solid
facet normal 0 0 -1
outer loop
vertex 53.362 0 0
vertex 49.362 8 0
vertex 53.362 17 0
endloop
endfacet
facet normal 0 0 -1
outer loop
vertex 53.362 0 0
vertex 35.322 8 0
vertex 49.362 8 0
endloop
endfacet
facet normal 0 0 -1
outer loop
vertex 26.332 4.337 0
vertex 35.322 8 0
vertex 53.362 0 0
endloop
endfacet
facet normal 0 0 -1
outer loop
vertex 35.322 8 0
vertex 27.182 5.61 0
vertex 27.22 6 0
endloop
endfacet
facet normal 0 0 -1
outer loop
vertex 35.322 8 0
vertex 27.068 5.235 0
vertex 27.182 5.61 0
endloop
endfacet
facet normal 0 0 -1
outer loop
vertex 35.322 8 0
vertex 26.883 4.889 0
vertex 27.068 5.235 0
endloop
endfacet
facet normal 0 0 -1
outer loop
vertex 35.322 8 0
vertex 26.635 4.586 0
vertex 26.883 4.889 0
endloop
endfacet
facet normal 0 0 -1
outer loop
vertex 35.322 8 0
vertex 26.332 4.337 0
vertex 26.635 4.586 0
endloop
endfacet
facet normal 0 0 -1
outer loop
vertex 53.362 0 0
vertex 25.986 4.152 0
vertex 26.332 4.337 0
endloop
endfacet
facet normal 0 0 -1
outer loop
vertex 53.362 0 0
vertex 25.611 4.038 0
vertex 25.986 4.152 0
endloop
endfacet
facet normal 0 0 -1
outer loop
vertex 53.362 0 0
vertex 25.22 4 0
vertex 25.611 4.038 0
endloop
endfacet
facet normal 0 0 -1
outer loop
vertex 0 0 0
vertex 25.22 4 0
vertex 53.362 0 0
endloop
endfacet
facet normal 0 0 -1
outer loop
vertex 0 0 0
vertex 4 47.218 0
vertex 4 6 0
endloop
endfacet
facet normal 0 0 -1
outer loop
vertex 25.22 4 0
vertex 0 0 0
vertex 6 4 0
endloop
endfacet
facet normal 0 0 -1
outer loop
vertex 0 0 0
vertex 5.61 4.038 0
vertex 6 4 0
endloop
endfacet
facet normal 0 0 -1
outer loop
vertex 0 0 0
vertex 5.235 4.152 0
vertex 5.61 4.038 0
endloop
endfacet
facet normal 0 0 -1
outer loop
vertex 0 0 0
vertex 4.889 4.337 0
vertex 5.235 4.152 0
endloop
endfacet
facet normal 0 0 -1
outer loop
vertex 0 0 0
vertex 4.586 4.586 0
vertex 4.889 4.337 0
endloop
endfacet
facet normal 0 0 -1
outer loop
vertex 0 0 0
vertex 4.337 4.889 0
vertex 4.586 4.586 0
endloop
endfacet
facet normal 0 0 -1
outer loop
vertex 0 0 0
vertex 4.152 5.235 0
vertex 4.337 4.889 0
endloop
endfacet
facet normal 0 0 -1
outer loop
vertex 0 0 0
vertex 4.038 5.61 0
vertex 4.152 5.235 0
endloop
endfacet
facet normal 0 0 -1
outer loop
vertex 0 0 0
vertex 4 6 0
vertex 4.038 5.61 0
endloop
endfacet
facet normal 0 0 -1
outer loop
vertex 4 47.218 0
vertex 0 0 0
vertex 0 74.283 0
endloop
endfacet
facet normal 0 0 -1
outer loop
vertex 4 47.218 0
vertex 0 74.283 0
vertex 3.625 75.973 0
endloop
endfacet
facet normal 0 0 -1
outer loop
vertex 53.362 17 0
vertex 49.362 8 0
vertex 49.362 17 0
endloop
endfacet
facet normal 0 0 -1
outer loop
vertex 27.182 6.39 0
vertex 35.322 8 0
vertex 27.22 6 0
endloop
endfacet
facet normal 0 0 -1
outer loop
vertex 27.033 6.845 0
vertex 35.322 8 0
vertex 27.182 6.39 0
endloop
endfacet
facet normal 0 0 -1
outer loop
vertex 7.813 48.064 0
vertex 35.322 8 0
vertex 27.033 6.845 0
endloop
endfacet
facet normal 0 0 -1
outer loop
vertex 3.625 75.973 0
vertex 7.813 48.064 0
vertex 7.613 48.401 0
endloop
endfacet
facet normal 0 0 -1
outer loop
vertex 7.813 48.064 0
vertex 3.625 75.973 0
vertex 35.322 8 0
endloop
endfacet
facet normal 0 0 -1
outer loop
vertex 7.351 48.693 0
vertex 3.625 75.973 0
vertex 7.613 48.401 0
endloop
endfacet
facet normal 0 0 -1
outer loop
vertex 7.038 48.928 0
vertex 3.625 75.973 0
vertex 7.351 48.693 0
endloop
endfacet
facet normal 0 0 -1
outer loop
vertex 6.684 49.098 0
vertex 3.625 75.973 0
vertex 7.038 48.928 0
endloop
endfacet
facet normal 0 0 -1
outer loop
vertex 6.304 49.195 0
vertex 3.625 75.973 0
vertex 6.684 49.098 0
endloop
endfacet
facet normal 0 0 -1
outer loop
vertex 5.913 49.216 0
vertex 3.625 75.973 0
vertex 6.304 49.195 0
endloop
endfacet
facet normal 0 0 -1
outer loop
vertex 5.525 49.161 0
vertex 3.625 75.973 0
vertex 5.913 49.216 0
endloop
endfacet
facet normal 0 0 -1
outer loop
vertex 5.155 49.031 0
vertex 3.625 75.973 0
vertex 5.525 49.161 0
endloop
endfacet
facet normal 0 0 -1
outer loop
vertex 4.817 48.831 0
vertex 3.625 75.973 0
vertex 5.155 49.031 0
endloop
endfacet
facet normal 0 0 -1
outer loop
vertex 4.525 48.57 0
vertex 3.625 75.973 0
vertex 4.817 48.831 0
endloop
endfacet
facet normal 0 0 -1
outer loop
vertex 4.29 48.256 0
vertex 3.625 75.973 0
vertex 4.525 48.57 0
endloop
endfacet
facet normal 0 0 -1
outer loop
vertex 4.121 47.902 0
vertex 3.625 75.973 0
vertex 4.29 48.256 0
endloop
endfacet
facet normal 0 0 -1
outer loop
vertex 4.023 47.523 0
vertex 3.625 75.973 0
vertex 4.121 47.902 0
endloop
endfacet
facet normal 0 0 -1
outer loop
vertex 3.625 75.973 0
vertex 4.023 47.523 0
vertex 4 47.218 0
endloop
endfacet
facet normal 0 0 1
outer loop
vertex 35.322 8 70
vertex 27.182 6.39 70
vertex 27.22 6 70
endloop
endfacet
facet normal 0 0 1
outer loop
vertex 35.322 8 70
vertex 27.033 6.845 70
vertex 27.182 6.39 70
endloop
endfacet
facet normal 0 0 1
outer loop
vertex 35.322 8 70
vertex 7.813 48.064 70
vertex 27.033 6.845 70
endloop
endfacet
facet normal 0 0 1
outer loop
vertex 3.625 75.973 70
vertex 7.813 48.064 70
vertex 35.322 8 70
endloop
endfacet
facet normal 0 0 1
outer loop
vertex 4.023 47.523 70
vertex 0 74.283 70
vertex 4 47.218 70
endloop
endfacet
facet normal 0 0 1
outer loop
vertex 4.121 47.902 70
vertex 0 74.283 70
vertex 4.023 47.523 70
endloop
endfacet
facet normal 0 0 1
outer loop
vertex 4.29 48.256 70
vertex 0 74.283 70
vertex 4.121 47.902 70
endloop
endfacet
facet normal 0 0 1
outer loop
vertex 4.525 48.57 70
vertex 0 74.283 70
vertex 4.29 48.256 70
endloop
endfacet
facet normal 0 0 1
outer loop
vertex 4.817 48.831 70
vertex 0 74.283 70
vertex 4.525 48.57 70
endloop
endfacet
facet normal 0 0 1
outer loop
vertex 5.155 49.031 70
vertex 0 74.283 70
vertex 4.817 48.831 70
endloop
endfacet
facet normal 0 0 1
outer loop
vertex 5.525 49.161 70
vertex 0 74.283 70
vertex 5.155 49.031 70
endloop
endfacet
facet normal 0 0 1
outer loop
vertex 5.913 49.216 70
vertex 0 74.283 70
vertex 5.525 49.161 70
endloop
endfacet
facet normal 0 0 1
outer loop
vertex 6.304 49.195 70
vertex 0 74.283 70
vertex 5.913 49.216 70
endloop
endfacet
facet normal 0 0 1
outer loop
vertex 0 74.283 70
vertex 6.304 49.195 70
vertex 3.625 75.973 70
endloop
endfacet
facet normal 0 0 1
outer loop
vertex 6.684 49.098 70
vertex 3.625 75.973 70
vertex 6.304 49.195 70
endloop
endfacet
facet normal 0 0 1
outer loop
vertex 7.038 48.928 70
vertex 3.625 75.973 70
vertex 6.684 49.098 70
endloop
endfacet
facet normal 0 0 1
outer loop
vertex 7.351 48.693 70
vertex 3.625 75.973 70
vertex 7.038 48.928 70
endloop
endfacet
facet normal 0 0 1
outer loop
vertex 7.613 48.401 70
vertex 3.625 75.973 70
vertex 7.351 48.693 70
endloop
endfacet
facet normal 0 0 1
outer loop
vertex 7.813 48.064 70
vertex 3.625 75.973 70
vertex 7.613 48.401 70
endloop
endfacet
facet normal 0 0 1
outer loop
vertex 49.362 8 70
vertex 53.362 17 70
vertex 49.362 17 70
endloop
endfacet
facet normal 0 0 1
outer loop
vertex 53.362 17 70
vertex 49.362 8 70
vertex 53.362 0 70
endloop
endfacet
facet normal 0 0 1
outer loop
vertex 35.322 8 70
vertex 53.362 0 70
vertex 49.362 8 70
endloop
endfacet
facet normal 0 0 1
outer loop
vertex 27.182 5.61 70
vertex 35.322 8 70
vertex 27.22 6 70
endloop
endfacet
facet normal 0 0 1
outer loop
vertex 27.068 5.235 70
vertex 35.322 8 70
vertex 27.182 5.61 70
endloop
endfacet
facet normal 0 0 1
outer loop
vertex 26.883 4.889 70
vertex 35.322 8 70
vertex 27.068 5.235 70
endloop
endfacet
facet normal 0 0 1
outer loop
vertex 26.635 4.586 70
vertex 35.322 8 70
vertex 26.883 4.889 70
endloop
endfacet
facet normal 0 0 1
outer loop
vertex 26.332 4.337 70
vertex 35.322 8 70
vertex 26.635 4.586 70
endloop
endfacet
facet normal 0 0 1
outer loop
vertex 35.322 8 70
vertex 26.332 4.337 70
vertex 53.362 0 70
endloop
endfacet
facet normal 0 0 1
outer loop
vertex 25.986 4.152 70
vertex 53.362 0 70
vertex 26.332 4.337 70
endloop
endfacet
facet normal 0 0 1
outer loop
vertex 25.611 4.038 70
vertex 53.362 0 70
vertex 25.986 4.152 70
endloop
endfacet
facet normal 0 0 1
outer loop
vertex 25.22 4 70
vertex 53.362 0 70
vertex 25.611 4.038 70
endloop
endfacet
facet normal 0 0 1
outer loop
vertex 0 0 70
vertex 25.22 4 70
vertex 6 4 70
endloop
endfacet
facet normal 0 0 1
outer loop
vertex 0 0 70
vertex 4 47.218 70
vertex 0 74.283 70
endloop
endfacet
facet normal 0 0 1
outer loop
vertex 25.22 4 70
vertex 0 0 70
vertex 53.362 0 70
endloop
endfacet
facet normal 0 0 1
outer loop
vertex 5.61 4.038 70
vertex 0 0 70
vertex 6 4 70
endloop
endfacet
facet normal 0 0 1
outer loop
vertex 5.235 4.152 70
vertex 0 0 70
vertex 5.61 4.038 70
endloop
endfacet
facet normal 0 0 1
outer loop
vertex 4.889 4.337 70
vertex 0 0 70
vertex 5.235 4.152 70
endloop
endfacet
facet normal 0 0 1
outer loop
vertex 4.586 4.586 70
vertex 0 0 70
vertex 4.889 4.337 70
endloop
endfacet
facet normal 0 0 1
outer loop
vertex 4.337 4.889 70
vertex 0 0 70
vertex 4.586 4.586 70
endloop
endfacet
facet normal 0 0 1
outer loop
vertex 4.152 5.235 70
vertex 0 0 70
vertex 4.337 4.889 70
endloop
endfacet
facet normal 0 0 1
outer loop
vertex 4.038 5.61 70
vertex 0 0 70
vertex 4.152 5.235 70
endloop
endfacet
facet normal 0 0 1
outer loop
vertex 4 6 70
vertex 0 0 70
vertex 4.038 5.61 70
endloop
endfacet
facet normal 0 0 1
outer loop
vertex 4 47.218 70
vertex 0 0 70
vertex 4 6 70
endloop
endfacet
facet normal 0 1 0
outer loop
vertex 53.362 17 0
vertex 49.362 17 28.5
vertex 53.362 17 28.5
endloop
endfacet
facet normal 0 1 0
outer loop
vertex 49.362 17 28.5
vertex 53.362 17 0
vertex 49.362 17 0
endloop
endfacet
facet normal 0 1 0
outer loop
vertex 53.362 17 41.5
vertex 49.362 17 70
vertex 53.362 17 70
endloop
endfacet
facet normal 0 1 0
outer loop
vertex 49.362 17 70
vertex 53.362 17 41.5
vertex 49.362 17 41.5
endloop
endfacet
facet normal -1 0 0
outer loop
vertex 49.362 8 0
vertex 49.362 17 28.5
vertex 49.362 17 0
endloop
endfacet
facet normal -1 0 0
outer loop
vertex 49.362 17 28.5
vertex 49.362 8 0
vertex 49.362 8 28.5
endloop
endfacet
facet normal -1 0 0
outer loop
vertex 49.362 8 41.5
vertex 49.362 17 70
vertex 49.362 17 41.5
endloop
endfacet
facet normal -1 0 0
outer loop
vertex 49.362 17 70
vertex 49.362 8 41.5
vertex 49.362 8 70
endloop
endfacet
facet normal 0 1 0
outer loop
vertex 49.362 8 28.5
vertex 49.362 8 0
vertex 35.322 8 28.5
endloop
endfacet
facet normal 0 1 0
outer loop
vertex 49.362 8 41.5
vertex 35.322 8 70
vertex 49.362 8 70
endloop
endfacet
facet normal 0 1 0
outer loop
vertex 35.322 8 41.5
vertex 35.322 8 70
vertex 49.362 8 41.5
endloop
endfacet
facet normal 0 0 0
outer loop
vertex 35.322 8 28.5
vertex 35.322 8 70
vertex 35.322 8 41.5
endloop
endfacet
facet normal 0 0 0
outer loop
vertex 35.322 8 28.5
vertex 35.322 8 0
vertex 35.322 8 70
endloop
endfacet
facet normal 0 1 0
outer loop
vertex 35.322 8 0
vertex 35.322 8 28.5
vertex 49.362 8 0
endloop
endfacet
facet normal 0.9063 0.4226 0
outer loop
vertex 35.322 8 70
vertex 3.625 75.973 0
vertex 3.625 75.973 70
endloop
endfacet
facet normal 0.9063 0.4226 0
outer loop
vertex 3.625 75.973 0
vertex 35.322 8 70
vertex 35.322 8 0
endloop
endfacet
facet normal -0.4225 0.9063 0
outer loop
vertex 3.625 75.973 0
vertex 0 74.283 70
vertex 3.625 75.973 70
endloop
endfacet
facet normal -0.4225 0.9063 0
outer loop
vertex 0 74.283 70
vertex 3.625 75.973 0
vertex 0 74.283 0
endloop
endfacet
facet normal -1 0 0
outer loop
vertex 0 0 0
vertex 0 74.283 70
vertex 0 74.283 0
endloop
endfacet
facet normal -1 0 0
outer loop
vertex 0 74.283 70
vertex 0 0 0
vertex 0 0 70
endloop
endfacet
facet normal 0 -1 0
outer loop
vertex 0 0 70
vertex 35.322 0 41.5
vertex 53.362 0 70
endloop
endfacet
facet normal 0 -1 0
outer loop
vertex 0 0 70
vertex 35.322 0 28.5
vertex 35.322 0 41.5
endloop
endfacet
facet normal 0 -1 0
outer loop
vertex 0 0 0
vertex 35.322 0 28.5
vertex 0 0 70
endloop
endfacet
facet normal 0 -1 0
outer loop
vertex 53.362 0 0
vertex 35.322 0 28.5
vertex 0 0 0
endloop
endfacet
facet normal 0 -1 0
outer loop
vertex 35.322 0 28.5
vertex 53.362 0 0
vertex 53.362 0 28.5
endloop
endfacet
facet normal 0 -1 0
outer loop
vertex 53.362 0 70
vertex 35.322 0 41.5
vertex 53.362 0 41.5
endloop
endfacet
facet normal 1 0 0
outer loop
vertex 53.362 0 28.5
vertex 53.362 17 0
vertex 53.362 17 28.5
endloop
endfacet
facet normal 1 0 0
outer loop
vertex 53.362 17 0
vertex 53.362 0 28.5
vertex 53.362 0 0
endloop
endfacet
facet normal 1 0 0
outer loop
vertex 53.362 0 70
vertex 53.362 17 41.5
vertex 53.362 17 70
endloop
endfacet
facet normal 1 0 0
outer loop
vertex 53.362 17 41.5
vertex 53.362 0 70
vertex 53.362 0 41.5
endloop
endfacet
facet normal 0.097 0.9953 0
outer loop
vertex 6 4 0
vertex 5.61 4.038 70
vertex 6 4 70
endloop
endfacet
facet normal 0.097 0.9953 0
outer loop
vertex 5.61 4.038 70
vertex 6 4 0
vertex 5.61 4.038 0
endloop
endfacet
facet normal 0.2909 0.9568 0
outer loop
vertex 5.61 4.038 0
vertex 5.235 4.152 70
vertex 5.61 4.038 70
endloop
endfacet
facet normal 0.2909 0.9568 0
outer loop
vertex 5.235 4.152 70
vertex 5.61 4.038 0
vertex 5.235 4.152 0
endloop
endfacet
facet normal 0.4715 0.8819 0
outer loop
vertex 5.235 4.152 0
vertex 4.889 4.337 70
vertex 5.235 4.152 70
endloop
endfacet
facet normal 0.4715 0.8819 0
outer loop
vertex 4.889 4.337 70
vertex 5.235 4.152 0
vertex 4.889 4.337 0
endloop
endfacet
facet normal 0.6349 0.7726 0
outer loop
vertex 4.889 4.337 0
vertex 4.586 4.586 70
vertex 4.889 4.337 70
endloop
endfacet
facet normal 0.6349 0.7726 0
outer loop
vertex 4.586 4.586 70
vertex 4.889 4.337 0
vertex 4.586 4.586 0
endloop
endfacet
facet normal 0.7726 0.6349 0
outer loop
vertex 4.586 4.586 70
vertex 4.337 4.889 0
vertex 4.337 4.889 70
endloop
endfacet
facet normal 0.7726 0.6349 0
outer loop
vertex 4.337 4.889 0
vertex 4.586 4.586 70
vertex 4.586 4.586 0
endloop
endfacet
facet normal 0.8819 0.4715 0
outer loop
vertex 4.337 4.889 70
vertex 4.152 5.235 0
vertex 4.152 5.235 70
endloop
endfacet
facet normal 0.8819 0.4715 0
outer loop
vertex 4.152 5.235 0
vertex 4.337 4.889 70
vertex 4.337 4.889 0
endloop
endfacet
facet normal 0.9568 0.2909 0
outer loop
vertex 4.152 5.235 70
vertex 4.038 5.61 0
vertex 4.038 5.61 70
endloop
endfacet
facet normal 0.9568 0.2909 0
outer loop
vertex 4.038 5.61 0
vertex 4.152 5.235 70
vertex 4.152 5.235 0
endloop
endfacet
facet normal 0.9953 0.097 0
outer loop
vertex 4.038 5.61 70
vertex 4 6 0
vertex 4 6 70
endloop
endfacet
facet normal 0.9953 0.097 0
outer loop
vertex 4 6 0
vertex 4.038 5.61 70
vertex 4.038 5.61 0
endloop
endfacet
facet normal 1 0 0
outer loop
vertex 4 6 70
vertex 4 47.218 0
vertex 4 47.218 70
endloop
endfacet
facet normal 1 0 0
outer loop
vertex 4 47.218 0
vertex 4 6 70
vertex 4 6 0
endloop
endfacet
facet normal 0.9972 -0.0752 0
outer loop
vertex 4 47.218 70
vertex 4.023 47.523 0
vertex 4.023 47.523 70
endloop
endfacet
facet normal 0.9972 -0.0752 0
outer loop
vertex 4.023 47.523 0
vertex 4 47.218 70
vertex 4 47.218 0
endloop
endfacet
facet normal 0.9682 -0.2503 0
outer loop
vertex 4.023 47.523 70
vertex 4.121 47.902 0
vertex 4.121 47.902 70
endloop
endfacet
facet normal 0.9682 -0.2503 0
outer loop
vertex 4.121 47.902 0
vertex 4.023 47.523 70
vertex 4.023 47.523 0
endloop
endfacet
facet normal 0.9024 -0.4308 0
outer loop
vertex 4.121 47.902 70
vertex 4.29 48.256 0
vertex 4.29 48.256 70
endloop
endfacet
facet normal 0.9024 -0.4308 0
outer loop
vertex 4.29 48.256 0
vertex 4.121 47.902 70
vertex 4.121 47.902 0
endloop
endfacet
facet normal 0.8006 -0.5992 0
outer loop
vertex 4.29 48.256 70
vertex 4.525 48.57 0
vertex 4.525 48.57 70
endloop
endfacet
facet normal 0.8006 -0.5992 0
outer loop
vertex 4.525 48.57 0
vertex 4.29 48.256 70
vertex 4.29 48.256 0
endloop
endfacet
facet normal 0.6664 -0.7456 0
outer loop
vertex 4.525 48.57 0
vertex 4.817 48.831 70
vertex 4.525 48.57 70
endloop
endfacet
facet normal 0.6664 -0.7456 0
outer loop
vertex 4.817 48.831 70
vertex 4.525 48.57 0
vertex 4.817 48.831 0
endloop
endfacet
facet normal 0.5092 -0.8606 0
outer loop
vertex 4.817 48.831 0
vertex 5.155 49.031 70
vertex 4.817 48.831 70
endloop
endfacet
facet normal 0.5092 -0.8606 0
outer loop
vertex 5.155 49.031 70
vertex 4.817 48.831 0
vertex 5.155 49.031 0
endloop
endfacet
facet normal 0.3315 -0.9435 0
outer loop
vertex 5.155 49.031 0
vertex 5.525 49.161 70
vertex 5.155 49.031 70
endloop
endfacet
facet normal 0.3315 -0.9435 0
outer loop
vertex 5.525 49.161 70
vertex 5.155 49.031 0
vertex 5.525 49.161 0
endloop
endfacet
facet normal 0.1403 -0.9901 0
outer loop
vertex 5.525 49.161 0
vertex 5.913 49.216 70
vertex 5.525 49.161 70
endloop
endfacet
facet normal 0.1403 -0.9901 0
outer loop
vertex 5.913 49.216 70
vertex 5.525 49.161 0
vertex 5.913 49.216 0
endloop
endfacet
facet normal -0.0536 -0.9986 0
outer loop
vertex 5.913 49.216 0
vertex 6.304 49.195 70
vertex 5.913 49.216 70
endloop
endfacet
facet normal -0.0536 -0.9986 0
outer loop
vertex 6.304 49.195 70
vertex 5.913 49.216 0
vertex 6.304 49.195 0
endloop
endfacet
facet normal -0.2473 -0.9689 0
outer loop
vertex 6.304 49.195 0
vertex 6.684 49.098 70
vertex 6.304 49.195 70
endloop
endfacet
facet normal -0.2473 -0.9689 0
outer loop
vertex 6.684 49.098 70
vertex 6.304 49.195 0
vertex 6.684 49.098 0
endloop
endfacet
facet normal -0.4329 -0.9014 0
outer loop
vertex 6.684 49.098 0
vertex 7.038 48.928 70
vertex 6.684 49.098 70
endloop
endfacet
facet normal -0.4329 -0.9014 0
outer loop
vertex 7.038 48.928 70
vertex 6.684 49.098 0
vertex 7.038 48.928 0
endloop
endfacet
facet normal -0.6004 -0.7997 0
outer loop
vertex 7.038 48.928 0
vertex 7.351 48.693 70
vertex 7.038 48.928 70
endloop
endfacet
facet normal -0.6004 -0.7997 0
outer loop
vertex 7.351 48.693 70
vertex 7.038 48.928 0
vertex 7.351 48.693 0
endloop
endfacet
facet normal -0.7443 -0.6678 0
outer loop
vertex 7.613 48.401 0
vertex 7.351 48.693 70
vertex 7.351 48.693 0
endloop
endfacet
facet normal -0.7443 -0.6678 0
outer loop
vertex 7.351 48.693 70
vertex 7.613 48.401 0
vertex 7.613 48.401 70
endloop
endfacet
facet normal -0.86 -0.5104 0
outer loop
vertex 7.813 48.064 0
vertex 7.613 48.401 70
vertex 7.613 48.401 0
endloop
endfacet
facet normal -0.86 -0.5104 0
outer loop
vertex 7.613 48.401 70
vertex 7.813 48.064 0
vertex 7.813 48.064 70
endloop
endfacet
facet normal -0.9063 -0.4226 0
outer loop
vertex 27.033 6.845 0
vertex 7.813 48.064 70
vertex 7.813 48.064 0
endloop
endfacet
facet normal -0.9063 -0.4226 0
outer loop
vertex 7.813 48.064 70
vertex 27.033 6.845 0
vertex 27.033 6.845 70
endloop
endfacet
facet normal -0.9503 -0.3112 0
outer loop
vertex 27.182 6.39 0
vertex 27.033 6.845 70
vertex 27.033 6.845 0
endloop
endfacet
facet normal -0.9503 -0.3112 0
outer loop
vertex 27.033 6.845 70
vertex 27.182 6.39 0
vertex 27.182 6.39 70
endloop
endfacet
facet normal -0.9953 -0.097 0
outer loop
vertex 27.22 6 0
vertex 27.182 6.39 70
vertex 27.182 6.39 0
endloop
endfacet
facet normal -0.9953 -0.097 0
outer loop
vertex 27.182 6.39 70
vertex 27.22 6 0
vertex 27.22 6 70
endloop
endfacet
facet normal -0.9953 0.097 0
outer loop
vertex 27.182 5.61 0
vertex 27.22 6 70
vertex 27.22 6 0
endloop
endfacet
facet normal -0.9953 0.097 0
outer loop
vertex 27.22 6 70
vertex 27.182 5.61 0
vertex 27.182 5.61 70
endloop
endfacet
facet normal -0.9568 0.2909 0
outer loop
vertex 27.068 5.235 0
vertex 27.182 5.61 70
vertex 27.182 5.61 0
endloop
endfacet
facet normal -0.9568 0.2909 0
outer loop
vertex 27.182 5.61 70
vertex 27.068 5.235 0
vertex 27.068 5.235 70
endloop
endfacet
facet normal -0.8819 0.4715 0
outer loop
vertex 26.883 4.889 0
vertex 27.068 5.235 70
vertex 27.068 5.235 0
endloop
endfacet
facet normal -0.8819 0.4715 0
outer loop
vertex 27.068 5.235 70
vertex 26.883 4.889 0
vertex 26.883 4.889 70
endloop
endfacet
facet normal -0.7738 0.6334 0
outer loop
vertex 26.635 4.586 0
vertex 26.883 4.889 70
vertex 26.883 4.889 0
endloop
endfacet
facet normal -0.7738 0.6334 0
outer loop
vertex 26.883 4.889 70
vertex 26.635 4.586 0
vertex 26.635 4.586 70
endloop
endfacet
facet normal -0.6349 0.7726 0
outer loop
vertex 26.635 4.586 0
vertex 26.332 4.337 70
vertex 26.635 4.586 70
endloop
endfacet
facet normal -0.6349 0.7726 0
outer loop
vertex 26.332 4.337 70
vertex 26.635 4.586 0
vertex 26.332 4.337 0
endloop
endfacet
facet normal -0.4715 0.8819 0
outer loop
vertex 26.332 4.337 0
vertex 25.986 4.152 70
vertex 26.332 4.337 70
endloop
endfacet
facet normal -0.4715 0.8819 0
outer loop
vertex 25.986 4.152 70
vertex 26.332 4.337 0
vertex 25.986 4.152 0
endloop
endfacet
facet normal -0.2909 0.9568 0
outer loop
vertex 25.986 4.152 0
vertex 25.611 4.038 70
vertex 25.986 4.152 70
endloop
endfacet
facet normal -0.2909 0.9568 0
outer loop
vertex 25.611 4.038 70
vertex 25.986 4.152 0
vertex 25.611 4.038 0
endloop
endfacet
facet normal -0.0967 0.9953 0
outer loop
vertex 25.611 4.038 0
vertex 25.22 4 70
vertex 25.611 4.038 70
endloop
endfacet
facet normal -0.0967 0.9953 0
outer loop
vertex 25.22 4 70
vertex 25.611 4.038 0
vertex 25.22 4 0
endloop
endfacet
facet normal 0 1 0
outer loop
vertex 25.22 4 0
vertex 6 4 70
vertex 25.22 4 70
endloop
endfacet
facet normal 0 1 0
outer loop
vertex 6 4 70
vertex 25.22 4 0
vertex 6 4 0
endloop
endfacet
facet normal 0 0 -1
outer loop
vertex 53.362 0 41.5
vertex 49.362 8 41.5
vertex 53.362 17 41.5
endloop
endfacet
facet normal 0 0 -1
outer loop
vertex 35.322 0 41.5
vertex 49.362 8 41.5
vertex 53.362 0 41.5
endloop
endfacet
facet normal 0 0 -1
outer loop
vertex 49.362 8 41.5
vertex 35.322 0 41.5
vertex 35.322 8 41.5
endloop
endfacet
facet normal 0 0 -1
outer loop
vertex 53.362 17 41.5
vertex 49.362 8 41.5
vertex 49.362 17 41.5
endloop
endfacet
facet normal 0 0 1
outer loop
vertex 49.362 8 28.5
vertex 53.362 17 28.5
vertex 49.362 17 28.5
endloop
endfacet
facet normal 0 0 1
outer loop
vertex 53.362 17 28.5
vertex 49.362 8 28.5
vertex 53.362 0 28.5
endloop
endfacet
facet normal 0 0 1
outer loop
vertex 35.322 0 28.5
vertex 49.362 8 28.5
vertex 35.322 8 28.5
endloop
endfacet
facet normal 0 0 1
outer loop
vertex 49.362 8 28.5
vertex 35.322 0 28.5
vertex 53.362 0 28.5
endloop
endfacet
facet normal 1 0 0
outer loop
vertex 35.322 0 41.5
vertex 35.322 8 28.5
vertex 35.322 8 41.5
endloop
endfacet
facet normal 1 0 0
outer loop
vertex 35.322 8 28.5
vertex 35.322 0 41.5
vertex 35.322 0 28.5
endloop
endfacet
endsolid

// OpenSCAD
// Phone / Tablet Stand — fixed-angle stand with a charging-cable slot.
// Works portrait or landscape, with or without a case.
// Print lying on its side (as rendered); no supports needed.

/* [Device] */
// Thickness of your phone/tablet INCLUDING the case (mm)
device_t = 12;          // [5:0.5:20]
// Viewing angle from the table (degrees). 60-70 is comfy on a desk.
angle = 65;             // [45:1:80]
// Height of the back rest (mm). ~60 for phones, ~100 for tablets.
rest_len = 75;          // [40:1:150]

/* [Stand] */
// Width of the stand (mm) — this is the print height
width = 70;             // [30:1:200]
// Front lip height above the seat (mm)
lip_h = 9;              // [4:1:20]
// Height of the seat above the table (mm)
seat_h = 8;             // [4:1:30]
// Material thickness (mm)
wall = 4;               // [2.5:0.5:8]
// Cut a slot for a charging cable
cable_slot = true;
// Cable slot width (mm)
cable_w = 13;           // [6:1:30]

/* [Hidden] */
$fn = 32;
lip_t = wall;
front = 30 + device_t;                               // x of front face
bx = front - lip_t - device_t / sin(angle) - 0.8;   // foot of the back rest
p_top = [bx - rest_len * cos(angle), seat_h + rest_len * sin(angle)];
p_back = p_top + wall * [-sin(angle), -cos(angle)];
x0 = p_back[0];

module body() {
    polygon([
        [x0, 0], [front, 0],
        [front, seat_h + lip_h], [front - lip_t, seat_h + lip_h],
        [front - lip_t, seat_h], [bx, seat_h],
        p_top, p_back
    ]);
}

module lightening() {
    // triangle under the back rest, shrunk by `wall`
    tri = [[x0, 0], [p_back[0] + p_back[1] / tan(angle), 0], p_back];
    offset(r = 2) offset(delta = -wall - 2) polygon(tri);
}

translate([-x0, 0, 0])
difference() {
    linear_extrude(width) difference() { body(); lightening(); }
    if (cable_slot)
        translate([bx, -1, width / 2 - cable_w / 2])
            cube([front - bx + 1, seat_h + lip_h + 2, cable_w]);
}
